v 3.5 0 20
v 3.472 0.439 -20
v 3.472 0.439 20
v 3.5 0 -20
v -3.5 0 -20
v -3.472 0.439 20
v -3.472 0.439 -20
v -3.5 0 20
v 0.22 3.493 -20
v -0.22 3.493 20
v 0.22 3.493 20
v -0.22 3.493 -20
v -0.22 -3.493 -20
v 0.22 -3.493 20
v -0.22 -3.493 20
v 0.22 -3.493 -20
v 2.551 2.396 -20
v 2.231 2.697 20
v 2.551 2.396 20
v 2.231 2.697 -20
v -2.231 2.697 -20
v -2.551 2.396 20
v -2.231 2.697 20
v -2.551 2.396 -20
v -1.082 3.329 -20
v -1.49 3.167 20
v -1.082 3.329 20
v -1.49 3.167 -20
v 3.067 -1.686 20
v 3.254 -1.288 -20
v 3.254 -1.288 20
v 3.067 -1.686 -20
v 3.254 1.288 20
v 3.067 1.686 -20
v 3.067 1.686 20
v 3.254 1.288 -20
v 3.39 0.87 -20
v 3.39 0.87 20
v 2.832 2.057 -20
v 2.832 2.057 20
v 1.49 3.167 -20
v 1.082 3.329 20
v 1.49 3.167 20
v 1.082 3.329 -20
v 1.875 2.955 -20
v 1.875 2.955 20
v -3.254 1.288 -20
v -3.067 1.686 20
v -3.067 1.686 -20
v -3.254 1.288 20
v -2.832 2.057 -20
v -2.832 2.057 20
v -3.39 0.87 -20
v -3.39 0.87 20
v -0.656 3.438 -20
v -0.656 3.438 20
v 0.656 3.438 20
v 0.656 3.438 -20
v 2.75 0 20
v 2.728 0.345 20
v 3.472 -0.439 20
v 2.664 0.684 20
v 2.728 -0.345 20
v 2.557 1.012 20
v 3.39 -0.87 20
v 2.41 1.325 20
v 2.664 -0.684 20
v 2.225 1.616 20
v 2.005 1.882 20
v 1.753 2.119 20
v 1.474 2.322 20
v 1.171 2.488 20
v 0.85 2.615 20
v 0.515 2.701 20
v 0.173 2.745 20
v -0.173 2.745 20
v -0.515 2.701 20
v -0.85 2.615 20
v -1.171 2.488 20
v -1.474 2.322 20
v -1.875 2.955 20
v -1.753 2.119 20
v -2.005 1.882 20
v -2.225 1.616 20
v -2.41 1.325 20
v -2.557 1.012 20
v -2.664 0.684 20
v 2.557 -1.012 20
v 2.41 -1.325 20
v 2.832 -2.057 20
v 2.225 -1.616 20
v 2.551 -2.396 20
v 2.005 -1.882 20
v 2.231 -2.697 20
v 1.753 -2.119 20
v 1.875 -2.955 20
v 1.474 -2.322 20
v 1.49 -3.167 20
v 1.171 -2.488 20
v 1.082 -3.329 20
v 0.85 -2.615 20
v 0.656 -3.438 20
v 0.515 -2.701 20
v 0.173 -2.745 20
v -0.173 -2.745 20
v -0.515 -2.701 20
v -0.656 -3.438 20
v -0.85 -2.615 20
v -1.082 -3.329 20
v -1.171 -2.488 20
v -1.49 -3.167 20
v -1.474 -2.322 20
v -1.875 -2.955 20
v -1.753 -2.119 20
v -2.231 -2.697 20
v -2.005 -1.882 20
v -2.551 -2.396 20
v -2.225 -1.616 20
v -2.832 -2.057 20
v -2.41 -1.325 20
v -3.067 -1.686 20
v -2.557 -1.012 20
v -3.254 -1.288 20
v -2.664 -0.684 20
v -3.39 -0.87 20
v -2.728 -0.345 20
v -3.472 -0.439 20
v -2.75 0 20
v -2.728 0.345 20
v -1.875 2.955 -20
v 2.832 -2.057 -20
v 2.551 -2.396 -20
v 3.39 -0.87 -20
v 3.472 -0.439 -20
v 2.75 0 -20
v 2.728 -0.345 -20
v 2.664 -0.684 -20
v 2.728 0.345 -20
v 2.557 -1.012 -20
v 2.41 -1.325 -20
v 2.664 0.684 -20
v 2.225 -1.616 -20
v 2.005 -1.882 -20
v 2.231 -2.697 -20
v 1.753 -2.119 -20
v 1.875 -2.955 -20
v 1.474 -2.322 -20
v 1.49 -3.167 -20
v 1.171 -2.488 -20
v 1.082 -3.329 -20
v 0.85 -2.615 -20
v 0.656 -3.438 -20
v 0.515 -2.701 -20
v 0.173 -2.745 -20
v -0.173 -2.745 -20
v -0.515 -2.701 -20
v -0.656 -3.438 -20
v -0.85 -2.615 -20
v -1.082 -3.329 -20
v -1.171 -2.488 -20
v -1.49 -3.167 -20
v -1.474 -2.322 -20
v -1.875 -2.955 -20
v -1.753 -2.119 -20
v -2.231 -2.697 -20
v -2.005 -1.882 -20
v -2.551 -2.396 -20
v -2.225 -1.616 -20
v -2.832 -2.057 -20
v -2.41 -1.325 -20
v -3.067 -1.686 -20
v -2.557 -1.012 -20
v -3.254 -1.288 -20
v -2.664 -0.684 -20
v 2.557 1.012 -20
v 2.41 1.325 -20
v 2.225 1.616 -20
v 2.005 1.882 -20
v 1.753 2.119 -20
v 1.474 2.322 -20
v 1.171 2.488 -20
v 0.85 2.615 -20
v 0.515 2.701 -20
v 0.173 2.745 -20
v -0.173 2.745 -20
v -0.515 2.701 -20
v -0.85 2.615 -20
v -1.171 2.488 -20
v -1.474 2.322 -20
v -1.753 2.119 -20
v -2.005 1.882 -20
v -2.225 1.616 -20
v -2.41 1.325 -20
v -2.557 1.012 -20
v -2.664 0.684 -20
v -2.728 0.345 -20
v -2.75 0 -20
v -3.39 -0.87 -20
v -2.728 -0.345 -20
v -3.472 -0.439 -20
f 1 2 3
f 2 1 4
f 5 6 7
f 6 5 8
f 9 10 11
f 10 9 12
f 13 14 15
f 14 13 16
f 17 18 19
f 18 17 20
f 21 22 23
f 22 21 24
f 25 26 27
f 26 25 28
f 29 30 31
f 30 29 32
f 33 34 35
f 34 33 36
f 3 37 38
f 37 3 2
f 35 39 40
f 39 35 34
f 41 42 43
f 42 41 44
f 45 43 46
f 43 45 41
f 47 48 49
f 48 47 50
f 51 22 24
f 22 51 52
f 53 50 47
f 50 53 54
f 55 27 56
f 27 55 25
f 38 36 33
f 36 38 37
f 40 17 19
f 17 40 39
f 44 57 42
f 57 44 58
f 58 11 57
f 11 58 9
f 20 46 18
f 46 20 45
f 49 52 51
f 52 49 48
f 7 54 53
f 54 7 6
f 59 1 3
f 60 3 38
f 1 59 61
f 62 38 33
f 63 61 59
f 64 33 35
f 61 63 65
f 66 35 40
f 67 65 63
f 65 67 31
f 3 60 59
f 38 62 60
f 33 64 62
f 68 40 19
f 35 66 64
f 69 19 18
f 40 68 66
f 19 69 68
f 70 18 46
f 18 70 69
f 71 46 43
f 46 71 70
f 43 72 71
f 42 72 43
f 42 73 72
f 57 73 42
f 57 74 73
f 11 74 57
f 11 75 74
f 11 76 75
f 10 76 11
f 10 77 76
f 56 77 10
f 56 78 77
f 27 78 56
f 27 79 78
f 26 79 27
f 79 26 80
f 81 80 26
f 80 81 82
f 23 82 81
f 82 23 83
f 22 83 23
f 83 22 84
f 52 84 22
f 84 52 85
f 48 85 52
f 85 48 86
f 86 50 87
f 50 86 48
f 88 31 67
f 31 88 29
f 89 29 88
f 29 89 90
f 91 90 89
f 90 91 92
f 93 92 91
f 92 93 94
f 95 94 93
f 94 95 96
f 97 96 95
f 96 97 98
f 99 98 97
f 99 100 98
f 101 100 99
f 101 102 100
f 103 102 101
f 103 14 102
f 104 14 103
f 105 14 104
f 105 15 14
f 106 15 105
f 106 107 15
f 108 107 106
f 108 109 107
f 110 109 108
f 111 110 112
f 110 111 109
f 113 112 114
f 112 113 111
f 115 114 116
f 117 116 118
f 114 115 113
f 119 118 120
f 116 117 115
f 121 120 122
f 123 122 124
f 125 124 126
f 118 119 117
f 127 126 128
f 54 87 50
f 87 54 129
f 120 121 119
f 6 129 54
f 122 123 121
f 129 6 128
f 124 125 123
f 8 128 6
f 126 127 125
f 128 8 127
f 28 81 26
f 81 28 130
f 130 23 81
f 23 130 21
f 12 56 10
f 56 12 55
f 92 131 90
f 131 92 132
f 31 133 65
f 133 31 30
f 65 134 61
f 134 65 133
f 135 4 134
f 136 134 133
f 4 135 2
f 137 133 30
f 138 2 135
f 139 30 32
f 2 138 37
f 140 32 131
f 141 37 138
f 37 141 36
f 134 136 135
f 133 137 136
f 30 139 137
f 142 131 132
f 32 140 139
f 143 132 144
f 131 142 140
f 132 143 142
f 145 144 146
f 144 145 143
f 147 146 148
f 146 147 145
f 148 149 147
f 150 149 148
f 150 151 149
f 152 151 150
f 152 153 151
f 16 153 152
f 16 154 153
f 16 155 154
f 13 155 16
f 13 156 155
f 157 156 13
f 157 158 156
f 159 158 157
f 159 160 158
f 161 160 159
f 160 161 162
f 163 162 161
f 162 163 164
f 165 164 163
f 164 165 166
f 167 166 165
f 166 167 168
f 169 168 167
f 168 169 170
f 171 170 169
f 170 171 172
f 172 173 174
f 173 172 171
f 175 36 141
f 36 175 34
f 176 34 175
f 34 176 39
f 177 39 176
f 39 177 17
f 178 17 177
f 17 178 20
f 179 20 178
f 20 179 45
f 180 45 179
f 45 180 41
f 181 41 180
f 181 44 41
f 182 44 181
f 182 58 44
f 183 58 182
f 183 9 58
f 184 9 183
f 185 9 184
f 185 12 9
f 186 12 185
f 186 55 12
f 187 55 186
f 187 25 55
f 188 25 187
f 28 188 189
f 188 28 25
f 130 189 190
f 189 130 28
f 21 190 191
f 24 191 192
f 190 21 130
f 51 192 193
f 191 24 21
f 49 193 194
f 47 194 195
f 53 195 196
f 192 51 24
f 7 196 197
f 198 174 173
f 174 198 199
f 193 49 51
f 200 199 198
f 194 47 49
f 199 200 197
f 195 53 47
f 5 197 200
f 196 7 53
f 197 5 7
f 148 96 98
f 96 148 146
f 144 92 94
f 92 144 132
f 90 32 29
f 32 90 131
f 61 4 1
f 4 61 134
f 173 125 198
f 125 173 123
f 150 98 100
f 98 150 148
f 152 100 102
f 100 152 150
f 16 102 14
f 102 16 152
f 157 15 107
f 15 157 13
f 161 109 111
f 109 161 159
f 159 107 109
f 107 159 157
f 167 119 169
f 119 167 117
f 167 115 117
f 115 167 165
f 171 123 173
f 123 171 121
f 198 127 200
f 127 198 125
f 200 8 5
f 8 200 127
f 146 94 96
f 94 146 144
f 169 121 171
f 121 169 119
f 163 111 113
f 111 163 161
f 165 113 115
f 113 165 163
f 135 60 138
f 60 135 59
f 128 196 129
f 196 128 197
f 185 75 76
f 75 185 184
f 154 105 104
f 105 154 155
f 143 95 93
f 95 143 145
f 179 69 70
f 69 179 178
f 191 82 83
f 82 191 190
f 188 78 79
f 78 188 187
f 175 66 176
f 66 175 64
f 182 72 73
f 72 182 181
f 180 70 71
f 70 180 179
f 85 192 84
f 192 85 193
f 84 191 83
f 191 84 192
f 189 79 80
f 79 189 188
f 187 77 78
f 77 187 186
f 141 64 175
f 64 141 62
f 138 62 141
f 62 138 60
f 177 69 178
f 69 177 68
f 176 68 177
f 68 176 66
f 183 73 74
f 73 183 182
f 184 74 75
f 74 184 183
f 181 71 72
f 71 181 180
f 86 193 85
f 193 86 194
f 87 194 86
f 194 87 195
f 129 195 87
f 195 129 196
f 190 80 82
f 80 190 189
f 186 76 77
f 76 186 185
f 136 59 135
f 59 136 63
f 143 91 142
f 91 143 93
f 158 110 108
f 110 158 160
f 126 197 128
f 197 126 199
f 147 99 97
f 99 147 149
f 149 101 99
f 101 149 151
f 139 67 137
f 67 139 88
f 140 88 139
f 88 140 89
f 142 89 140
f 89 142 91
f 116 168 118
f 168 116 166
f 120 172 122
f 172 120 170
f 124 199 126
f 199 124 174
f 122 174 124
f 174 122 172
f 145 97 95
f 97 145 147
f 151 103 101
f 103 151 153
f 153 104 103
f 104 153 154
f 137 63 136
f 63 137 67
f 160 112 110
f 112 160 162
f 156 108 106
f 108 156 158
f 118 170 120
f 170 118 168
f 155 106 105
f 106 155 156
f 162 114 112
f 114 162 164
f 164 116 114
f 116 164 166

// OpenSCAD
$fn = 50;


difference() {
	union() {
		translate(v = [0, 0, -20.0000000000]) {
			cylinder(h = 40, r = 3.5000000000);
		}
	}
	union() {
		translate(v = [0, 0, -100.0000000000]) {
			cylinder(h = 200, r = 2.7500000000);
		}
	}
}
